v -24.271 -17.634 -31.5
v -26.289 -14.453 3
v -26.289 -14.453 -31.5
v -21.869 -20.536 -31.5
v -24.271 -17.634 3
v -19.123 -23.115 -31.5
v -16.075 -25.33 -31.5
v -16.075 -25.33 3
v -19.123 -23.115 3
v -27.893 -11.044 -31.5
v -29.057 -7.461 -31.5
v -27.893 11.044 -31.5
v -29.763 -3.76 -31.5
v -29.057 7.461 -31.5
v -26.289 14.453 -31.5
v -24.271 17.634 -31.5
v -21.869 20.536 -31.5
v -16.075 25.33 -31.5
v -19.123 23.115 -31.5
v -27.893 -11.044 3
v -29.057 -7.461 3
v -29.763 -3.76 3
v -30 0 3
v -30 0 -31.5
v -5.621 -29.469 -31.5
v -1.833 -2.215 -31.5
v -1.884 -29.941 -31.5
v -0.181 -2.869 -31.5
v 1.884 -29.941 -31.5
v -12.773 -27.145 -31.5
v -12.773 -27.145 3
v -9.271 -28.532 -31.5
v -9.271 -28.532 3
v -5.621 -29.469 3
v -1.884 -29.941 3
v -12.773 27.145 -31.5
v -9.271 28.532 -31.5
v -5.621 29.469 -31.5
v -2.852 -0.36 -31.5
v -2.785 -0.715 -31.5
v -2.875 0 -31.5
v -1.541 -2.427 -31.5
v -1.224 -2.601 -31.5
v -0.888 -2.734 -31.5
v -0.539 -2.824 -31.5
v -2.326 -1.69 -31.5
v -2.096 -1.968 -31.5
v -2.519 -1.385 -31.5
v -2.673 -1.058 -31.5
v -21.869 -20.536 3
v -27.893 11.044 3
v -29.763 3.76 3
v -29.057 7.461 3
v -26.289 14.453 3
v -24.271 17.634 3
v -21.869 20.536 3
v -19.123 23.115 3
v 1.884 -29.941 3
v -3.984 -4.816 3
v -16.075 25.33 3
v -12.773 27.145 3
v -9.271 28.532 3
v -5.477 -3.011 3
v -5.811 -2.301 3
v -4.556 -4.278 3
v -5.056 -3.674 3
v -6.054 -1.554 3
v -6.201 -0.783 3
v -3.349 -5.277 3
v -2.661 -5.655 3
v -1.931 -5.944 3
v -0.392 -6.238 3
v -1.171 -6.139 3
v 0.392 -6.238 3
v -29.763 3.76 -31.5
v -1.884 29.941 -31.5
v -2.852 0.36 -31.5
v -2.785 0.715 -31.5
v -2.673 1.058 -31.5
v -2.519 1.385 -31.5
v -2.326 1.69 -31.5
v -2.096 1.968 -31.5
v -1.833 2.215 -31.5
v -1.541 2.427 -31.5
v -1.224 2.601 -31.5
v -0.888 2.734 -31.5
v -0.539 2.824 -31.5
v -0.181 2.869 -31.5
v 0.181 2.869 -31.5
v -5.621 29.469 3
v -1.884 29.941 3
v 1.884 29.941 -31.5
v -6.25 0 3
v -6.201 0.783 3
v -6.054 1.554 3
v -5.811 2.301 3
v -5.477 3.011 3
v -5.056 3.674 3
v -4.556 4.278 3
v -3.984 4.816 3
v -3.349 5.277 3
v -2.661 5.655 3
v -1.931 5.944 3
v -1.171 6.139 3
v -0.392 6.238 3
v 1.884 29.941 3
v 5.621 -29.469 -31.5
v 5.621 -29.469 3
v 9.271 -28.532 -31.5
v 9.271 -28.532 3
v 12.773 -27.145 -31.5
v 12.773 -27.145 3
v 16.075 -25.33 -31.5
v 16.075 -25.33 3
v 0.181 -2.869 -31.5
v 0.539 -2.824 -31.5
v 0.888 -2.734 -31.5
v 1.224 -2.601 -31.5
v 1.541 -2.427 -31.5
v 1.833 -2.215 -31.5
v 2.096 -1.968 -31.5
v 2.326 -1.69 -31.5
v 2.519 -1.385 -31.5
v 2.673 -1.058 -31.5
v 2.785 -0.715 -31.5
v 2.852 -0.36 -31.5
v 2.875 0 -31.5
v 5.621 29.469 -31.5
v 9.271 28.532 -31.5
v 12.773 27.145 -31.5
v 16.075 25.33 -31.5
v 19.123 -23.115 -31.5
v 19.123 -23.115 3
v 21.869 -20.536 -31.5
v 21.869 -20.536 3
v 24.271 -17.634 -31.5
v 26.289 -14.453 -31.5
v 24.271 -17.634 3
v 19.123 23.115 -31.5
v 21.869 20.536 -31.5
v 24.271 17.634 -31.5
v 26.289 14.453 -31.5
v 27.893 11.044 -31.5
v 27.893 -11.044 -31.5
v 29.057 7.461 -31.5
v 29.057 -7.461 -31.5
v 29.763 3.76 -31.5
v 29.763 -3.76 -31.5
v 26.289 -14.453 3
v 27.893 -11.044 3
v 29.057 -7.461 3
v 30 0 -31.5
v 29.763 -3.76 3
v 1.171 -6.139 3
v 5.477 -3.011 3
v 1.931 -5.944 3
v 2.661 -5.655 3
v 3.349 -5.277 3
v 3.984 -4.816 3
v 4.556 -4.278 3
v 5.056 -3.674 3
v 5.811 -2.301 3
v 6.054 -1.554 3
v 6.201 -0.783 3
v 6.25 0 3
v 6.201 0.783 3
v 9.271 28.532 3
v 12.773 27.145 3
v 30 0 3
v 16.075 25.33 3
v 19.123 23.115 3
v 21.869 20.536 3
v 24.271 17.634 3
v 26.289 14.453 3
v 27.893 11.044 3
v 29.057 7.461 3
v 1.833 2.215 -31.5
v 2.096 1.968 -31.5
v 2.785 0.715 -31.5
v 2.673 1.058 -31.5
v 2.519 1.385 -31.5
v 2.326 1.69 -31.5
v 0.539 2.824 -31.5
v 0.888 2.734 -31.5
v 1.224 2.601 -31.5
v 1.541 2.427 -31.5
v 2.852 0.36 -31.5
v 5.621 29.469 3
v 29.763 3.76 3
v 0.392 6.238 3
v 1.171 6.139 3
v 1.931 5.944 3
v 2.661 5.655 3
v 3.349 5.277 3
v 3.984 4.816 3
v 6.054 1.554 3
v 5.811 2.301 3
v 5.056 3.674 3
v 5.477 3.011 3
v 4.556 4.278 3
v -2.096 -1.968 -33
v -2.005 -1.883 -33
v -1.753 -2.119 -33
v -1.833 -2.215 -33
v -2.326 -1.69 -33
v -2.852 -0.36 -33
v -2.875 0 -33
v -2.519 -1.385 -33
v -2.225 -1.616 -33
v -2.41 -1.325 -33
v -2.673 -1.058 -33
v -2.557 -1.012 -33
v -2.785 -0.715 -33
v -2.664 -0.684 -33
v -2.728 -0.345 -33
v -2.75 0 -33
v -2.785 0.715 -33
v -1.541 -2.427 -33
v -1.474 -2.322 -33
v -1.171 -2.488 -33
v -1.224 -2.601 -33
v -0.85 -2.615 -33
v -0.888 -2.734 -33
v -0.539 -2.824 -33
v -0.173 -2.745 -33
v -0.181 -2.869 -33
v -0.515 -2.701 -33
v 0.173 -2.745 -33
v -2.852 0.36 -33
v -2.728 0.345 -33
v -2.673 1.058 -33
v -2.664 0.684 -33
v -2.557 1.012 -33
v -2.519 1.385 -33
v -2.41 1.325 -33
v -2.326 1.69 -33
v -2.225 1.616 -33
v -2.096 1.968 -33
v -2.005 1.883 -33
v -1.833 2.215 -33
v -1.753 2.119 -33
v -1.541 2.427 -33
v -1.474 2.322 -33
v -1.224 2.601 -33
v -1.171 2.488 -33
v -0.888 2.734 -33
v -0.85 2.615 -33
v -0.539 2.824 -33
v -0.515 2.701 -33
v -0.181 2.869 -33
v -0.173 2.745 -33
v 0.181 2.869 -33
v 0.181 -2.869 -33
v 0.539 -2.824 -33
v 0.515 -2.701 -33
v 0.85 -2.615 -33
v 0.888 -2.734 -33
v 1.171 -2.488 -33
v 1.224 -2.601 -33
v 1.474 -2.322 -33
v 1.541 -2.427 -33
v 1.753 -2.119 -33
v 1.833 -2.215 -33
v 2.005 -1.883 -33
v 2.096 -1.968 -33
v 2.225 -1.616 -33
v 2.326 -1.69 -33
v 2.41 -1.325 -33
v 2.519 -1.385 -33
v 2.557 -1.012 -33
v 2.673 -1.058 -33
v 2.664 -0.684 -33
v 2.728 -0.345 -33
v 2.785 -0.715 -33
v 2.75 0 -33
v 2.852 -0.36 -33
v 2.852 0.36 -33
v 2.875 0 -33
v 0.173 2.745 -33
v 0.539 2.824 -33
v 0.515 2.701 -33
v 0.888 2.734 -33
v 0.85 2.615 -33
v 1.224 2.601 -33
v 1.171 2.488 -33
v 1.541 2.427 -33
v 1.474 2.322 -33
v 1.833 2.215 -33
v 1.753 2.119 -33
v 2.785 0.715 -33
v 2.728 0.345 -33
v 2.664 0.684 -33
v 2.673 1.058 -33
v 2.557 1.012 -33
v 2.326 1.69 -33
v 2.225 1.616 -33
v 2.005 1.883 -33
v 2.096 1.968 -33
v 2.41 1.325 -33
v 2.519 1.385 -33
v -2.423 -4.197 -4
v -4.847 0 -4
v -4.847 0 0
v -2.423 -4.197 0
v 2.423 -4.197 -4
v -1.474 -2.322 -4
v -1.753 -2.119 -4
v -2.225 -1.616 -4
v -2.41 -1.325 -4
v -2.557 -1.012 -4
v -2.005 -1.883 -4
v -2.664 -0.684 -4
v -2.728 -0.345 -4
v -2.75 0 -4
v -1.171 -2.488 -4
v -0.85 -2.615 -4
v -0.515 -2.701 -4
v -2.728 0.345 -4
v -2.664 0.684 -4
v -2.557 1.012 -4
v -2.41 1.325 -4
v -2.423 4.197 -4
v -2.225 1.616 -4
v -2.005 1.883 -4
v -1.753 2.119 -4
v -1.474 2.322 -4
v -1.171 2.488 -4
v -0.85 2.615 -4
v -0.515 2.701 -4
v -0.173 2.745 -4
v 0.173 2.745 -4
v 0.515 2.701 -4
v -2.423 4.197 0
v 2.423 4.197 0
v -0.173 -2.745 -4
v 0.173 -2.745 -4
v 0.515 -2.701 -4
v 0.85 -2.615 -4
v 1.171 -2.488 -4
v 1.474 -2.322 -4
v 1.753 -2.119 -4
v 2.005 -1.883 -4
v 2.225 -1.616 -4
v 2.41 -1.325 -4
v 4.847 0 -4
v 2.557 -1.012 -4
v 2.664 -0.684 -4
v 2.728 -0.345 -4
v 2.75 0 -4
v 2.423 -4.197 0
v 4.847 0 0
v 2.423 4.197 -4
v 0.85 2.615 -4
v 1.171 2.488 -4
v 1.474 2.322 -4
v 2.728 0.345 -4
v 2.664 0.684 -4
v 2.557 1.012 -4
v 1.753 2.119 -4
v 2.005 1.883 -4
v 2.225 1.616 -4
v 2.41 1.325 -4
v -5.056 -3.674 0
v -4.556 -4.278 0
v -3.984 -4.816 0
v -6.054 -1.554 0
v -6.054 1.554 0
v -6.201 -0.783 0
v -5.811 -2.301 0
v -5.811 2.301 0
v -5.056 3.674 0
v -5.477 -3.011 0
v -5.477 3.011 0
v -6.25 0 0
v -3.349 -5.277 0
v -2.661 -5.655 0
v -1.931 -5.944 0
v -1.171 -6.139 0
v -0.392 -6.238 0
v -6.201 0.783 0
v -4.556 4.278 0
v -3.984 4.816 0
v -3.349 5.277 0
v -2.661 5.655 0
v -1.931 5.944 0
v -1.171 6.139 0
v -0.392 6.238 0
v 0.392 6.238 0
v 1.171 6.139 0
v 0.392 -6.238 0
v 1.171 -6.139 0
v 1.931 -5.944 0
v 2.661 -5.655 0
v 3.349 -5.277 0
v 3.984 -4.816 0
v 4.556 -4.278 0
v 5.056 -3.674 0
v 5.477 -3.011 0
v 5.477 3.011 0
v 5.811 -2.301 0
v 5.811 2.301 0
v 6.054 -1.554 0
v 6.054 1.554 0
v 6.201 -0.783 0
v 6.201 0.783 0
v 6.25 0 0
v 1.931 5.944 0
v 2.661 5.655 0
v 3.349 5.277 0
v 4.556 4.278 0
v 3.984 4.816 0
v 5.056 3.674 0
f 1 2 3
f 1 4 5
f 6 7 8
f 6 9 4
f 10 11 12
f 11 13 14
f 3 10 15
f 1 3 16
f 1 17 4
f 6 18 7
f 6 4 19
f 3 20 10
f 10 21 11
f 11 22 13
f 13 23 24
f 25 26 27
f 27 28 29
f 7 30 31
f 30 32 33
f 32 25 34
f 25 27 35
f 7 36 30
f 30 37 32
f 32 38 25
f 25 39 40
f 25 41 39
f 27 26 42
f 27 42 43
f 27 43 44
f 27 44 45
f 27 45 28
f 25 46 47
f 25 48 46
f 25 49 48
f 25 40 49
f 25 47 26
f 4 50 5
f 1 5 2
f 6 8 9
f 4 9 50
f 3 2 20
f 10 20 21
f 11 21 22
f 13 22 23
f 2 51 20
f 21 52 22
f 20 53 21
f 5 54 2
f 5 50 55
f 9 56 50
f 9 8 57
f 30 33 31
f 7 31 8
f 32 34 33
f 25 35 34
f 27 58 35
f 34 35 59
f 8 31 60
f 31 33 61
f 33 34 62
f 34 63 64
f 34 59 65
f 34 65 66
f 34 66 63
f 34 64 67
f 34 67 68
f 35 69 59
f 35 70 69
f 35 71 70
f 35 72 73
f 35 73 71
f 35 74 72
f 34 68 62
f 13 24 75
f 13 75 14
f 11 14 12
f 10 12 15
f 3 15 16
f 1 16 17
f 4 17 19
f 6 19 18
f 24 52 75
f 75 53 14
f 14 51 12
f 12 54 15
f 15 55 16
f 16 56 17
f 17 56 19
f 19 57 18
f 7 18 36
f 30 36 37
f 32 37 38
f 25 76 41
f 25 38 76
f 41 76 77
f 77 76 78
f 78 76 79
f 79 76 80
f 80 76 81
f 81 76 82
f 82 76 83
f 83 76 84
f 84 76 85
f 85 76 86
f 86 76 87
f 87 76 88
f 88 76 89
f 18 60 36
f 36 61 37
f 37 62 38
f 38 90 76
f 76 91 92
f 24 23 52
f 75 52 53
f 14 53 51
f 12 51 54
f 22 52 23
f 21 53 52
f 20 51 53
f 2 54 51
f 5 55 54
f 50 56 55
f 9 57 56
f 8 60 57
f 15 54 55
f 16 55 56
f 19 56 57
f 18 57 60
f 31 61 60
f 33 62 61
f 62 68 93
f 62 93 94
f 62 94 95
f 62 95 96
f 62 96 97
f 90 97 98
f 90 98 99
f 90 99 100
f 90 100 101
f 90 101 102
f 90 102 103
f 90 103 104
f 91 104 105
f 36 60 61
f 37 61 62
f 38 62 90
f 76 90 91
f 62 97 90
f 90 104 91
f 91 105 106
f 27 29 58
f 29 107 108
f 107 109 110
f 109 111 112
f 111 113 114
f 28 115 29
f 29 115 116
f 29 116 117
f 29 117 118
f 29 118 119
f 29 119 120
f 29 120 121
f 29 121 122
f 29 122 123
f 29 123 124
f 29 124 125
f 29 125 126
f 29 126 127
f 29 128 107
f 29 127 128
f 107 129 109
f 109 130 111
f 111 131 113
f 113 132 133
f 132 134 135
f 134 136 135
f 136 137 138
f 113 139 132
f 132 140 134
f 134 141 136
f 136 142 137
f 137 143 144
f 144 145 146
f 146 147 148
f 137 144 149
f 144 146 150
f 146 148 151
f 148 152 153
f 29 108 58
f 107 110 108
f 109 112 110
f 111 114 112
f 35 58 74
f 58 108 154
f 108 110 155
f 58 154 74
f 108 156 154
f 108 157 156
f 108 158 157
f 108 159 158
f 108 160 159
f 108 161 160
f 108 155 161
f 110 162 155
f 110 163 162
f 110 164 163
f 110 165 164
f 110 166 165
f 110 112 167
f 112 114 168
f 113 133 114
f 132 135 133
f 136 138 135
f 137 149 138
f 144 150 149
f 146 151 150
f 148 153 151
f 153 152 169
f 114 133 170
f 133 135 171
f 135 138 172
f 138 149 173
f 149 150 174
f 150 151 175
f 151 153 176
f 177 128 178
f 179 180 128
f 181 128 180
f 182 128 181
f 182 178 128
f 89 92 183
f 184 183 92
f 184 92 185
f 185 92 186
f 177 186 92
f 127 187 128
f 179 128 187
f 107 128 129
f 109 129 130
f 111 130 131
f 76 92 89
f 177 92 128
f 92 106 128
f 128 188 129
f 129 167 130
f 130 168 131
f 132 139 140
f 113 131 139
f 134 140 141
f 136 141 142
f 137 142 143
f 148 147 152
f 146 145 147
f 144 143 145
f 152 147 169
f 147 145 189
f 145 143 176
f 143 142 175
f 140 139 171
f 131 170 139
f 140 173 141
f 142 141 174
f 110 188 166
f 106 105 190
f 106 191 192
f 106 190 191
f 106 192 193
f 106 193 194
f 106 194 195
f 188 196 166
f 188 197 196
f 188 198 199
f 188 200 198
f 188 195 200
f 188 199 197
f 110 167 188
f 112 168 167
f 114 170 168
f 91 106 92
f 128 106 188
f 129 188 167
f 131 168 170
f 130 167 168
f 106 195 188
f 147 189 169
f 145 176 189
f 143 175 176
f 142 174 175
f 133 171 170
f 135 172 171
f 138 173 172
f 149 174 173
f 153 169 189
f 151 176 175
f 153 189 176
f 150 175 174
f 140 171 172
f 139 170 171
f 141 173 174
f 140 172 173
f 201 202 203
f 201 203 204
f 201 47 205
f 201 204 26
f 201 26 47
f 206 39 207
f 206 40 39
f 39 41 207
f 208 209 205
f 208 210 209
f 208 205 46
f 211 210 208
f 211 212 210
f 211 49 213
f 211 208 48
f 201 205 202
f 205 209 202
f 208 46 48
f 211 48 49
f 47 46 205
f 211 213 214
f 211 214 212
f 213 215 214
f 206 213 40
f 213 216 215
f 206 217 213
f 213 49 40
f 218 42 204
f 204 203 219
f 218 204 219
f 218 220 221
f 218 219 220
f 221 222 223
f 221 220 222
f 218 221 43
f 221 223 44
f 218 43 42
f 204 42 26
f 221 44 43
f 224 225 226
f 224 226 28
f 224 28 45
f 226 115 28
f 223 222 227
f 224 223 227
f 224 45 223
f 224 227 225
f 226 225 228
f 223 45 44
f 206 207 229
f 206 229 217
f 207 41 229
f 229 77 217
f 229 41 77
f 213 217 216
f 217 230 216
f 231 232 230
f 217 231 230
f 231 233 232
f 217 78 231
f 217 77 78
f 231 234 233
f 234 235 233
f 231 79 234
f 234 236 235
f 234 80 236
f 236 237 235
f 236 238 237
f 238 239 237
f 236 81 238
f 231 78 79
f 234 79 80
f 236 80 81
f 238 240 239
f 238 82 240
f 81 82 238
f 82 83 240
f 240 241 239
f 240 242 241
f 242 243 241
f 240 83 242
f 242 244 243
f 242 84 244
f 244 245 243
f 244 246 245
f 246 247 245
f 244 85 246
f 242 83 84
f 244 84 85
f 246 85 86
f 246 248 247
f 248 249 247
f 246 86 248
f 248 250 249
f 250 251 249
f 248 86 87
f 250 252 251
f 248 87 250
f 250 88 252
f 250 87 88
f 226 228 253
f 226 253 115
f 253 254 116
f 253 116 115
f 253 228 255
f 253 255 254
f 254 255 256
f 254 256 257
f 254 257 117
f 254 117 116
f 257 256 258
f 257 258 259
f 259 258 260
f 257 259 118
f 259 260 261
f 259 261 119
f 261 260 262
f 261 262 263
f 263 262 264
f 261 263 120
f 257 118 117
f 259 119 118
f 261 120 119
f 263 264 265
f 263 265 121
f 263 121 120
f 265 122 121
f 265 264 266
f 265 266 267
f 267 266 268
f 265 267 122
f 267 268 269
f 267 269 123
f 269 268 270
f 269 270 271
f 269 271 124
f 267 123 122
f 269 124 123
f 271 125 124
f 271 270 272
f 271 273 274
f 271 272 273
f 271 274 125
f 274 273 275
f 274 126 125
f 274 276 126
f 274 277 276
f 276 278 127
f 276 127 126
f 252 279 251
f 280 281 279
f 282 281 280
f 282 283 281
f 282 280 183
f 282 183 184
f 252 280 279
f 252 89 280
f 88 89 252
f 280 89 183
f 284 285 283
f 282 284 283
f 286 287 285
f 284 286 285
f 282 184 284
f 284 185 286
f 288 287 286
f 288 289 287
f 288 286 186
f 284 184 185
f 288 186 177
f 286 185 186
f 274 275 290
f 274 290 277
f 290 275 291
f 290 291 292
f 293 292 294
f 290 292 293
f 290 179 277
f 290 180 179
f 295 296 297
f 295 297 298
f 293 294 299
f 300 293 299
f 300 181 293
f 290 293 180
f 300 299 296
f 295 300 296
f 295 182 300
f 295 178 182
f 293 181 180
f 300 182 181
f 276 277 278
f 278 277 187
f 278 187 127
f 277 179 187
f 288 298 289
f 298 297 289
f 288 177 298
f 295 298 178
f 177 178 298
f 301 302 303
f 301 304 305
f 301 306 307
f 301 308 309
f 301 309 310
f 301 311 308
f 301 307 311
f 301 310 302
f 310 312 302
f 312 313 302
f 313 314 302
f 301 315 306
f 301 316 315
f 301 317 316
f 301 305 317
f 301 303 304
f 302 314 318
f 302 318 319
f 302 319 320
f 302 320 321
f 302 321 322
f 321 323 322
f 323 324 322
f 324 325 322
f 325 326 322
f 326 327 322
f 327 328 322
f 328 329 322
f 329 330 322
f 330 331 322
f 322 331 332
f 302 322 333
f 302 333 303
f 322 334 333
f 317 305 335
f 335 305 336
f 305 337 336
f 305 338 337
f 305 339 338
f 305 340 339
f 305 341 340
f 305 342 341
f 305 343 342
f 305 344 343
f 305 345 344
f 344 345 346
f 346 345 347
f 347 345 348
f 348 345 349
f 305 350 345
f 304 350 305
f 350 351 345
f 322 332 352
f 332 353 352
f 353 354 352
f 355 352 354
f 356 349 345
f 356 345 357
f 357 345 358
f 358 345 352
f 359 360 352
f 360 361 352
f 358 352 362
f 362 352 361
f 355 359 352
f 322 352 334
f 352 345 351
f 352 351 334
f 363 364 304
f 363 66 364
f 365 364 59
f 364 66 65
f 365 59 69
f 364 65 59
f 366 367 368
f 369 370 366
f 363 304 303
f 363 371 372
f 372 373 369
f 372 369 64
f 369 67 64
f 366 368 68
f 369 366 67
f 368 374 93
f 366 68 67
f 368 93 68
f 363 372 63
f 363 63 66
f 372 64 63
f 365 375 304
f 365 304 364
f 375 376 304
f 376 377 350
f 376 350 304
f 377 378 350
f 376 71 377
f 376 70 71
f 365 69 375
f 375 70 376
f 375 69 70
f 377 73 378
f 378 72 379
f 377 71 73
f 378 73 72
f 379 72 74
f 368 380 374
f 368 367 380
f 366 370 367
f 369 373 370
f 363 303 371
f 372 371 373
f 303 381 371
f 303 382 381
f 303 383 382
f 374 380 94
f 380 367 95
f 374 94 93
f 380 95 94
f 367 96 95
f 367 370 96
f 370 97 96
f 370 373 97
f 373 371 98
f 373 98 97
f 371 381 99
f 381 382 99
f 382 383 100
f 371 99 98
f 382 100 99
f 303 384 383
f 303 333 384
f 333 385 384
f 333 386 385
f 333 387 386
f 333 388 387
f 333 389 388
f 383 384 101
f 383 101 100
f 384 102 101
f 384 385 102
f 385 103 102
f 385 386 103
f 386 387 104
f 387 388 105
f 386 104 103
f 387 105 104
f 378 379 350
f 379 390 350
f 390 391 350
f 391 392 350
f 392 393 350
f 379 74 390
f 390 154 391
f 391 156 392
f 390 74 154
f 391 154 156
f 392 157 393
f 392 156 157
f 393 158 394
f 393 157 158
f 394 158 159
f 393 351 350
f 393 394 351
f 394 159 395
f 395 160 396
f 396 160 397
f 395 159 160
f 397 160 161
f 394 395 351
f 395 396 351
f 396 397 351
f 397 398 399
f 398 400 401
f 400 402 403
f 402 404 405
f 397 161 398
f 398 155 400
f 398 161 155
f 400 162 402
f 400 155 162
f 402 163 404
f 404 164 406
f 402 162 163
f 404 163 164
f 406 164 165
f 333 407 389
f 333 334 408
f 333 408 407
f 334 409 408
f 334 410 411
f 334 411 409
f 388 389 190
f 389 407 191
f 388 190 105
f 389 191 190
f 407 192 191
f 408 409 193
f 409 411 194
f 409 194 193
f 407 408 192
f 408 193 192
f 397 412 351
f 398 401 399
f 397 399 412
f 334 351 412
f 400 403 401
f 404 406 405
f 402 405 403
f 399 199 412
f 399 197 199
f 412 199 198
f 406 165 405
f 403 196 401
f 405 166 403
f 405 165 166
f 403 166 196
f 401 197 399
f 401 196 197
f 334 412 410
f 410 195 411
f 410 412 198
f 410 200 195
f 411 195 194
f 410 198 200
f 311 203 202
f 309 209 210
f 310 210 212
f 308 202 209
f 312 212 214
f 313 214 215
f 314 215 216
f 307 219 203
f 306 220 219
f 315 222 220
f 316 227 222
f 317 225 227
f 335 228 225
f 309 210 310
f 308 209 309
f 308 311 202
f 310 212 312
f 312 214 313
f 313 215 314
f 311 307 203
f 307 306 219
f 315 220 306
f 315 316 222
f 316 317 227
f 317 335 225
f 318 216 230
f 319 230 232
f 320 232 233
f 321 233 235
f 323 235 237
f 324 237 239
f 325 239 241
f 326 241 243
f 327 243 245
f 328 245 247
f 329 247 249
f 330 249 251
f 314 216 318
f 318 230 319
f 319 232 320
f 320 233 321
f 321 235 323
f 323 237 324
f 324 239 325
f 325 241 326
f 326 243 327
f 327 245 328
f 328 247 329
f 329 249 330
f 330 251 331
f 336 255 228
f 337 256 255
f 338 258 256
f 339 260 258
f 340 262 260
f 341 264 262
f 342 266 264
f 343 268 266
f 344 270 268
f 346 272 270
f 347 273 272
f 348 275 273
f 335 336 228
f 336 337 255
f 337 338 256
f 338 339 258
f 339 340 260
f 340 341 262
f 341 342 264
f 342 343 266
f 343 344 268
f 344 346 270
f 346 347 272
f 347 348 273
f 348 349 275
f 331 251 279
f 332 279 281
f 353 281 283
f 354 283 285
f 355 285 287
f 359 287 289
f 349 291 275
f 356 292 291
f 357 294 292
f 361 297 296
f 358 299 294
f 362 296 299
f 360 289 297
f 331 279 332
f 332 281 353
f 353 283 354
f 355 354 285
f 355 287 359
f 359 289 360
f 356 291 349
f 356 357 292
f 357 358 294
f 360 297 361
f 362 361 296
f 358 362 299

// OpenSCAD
$fn = 50;

difference() {
	union() {
		translate(v = [0, 0, -31.5]) {
			cylinder(h = 34.5, r = 30.0);
		}
		#translate(v = [0, 0, -33.0]) {
			cylinder(h = 33, r = 2.875);
		}
	}
	union() {
		translate(v = [0, 0, 0]) {
			rotate(a = [0, 0, 0]) {
				difference() {
					union() {
						translate(v = [0, 0, -4]) {
							linear_extrude(height = 4) {
								polygon(points = [[4.8468, 0.0], [2.4234000000000004, 4.197451927062417], [-2.423399999999999, 4.197451927062417], [-4.8468, 5.935618106107392e-16], [-2.423400000000002, -4.197451927062416], [2.423399999999997, -4.197451927062419]]);
							}
						}
					}
					union();
				}
			}
		}
		#cylinder(h = 3, r = 6.25);
		#translate(v = [0, 0, -100.0]) {
			cylinder(h = 200, r = 2.75);
		}
	}
}
